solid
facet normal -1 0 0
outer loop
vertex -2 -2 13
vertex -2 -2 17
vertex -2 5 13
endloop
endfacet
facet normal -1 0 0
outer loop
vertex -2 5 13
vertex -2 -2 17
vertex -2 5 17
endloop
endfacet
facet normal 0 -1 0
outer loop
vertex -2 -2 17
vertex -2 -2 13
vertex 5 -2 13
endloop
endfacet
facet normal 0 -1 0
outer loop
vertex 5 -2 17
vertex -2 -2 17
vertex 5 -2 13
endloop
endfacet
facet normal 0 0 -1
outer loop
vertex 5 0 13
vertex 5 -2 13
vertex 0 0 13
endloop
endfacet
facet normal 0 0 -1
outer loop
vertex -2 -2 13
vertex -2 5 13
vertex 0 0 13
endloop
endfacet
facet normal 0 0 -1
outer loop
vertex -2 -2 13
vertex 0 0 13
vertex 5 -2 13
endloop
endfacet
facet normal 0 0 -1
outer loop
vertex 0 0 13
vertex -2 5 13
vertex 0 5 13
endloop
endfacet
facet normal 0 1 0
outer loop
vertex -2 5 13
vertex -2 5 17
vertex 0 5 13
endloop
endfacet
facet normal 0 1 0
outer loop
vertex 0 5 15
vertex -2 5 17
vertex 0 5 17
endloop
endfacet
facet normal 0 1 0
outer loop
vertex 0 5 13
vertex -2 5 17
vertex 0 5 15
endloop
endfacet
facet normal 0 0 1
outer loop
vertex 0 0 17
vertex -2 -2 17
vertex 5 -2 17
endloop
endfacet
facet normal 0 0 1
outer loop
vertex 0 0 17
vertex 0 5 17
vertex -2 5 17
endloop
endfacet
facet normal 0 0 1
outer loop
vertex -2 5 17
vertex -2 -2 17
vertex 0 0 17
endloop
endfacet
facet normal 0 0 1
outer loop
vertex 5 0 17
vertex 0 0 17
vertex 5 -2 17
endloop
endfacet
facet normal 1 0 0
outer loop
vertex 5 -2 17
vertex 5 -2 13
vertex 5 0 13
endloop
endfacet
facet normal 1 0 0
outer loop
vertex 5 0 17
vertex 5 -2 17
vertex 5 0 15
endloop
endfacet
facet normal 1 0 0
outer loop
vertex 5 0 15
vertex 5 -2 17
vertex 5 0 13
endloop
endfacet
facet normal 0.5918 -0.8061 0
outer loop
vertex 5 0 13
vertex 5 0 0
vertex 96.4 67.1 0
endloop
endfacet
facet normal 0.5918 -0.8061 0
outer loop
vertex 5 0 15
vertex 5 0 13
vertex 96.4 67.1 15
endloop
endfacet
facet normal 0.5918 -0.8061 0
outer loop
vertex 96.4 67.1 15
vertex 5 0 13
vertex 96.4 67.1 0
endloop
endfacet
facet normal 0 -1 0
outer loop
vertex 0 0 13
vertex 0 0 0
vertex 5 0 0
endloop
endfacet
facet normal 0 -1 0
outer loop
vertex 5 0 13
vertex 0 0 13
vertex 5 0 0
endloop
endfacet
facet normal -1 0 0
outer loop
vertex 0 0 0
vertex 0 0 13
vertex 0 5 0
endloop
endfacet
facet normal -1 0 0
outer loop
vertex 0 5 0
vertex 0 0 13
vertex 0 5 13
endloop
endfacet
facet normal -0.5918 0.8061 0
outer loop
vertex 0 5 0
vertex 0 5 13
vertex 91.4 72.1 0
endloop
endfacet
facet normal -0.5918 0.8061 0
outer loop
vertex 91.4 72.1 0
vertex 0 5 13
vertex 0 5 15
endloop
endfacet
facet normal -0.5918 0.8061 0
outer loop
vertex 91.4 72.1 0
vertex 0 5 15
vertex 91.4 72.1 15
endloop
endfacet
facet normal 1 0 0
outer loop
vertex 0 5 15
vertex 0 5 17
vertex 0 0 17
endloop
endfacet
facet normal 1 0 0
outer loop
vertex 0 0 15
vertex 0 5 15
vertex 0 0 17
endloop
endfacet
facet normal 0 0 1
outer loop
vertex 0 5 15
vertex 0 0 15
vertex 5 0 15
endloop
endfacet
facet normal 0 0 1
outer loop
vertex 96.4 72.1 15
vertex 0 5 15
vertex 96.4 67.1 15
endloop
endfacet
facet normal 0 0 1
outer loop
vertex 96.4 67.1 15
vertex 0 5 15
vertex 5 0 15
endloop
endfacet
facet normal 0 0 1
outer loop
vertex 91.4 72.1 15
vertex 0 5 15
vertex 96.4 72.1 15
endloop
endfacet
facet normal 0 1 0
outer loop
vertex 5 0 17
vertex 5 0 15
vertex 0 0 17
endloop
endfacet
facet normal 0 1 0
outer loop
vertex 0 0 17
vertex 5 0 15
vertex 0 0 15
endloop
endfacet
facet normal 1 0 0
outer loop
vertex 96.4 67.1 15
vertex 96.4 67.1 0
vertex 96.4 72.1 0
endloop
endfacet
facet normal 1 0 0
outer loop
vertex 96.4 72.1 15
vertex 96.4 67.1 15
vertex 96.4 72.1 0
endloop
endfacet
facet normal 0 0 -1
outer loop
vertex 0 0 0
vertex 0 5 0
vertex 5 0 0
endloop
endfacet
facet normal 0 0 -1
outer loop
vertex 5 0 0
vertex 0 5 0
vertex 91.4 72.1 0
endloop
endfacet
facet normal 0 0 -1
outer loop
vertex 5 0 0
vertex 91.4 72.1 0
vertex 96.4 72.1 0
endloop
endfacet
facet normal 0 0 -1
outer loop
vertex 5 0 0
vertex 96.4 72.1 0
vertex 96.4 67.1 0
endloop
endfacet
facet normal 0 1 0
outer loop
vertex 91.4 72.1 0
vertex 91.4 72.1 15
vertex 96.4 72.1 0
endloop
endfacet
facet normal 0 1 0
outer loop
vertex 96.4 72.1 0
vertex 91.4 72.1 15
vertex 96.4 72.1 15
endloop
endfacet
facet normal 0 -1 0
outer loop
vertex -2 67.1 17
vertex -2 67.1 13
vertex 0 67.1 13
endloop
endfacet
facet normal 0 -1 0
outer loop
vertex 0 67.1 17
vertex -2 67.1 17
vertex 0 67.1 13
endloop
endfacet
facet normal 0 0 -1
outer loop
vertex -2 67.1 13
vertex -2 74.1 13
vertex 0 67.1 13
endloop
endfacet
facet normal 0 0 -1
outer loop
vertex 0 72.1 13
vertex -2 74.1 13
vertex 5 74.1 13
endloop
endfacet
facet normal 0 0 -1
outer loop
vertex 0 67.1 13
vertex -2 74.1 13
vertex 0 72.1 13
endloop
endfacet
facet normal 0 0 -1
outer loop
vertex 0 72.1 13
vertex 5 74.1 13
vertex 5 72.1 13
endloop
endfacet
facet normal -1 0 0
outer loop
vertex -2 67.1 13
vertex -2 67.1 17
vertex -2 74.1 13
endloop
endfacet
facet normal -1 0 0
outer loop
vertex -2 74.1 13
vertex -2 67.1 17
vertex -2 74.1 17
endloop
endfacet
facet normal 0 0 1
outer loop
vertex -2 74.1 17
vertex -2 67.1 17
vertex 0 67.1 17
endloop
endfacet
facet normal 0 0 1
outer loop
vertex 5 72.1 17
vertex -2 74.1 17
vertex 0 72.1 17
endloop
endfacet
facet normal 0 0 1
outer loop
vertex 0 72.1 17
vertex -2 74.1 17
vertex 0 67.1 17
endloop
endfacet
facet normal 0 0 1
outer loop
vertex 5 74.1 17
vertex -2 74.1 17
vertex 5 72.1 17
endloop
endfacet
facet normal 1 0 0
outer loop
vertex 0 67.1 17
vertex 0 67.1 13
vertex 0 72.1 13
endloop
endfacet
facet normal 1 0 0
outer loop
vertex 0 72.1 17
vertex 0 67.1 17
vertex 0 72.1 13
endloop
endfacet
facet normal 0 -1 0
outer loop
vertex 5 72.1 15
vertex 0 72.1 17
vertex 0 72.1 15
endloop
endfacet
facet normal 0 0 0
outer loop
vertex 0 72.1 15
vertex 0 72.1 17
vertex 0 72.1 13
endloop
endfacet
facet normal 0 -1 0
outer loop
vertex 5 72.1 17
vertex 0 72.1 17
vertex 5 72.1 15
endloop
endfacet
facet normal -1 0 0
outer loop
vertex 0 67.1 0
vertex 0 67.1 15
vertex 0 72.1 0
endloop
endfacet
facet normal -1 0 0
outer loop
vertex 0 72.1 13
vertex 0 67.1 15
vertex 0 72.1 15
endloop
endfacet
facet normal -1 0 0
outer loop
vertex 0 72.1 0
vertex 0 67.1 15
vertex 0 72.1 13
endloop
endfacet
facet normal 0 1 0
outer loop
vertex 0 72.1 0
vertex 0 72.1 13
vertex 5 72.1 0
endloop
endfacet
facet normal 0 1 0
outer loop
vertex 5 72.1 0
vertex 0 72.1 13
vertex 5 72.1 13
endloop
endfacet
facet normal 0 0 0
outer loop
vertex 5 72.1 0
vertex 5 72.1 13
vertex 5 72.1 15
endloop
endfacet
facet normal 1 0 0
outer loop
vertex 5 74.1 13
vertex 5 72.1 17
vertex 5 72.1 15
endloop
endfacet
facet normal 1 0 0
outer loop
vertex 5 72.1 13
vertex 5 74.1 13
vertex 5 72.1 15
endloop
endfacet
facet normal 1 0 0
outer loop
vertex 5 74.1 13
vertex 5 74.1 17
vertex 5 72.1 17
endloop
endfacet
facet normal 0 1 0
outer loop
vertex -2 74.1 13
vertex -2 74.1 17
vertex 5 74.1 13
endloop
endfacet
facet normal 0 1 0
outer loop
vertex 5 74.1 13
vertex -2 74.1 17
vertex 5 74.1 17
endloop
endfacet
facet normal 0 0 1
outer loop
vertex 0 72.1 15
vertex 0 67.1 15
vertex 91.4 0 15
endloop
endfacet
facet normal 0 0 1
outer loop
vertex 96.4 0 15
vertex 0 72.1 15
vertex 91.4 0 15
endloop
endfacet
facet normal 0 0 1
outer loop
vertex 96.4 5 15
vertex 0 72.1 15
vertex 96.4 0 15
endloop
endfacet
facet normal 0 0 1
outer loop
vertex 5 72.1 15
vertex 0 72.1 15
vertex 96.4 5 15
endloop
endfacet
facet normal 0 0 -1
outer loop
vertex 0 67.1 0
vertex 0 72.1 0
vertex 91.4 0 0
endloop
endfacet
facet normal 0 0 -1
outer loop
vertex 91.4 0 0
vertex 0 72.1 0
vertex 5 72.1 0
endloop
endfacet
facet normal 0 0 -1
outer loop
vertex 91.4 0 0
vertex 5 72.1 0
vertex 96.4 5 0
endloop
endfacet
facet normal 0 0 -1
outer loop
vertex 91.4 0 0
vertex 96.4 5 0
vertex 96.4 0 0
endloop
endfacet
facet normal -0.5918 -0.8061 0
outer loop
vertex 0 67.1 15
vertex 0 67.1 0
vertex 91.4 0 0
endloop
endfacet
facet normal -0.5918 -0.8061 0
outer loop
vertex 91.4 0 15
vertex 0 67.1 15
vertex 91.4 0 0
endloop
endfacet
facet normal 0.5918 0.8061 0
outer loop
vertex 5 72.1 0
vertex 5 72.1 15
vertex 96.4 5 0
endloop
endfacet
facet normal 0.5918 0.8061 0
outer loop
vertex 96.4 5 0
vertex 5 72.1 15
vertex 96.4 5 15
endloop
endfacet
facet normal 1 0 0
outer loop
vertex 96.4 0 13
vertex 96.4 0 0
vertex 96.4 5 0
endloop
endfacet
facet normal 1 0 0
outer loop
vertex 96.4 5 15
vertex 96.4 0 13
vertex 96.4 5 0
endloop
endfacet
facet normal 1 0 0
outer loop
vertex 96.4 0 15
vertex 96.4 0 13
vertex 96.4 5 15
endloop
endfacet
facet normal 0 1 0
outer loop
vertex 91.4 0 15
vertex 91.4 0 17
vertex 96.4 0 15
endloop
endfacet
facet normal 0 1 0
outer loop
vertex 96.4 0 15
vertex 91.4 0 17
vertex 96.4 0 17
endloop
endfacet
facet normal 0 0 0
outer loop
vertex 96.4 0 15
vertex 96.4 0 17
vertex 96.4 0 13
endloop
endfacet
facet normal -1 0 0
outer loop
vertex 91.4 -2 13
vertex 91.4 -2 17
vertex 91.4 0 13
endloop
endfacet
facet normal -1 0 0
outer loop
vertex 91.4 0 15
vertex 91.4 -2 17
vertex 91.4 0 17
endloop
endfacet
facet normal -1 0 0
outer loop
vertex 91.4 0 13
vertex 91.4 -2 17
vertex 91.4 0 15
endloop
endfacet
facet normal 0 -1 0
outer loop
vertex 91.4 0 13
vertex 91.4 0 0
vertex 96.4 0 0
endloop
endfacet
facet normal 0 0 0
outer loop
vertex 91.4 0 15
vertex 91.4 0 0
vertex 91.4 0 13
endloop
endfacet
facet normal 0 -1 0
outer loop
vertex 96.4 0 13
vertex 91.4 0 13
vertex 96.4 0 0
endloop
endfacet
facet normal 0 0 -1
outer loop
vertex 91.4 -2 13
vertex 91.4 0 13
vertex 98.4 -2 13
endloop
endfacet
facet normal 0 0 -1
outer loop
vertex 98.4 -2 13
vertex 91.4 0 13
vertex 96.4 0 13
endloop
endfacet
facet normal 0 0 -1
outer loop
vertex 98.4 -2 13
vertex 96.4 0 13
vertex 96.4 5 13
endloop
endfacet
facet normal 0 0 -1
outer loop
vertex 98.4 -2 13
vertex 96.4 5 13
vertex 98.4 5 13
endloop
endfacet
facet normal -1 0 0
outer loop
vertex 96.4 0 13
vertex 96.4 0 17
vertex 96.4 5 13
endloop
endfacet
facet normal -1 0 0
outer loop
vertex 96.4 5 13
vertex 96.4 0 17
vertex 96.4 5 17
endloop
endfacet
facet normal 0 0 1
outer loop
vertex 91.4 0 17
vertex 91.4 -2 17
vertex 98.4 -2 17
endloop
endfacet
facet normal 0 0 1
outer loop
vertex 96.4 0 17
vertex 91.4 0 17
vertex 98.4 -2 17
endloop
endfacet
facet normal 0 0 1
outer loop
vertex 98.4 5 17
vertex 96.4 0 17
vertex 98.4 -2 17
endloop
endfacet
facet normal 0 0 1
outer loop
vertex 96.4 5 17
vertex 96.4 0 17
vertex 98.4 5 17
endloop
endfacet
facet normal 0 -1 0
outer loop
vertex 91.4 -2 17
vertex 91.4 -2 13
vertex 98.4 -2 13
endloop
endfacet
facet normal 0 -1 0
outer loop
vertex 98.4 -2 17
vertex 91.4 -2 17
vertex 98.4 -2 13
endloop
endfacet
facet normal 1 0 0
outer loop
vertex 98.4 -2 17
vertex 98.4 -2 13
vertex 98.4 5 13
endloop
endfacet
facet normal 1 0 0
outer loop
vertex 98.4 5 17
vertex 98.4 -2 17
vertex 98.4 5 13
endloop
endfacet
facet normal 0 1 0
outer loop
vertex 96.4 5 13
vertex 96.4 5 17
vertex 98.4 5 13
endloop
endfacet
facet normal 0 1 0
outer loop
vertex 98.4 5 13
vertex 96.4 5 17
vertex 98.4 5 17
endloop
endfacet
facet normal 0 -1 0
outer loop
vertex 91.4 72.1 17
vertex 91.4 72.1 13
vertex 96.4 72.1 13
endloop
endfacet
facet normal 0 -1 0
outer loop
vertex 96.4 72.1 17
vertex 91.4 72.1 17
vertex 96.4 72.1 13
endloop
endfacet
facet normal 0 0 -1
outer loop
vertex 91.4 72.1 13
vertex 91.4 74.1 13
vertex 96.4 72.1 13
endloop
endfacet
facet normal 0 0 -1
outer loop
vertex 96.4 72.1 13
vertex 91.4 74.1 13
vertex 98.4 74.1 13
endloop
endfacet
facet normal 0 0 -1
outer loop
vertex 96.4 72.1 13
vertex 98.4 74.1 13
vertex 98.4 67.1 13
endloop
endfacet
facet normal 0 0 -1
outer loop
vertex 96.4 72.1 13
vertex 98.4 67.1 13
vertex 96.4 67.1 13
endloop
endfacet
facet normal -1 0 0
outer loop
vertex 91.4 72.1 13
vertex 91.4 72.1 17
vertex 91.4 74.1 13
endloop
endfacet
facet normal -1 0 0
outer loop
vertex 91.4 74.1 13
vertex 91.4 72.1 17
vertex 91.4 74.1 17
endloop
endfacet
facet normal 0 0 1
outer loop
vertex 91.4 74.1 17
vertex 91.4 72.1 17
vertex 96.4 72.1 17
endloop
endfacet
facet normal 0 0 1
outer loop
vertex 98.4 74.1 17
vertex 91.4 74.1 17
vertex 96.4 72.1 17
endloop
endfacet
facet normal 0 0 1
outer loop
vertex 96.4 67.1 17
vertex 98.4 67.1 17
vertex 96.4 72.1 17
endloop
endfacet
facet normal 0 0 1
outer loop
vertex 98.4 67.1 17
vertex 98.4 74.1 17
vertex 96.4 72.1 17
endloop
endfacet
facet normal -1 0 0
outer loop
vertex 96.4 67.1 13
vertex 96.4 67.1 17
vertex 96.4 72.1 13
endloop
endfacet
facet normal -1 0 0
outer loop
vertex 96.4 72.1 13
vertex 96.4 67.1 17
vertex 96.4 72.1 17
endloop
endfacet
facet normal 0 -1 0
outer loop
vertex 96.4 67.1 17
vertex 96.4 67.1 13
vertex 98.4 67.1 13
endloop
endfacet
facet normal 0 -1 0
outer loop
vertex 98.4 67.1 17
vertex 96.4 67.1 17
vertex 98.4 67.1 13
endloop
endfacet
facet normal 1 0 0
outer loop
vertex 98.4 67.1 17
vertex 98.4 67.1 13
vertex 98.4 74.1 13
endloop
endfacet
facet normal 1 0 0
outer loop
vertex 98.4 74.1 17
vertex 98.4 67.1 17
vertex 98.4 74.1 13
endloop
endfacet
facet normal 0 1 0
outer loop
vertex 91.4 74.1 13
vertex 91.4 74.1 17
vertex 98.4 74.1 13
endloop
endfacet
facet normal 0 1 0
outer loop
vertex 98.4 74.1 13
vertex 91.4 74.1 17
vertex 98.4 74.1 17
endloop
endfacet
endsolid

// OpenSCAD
// Bloc Glockenspiel Moteur

// Hauteur : 15 mm
// Largeur : 72.1 mm
// Longueur : 96.4 mm

Hauteur = 15;
Largeur = 72.1;
Longueur = 96.4;
EpaisseurCale = 2;
EpaisseurAxes = 5;

support ();

translate ([ -EpaisseurCale, -EpaisseurCale, Hauteur - EpaisseurCale] ) 
	cale ();

translate ([ Longueur + EpaisseurCale, -EpaisseurCale, Hauteur - EpaisseurCale] ) 
	rotate ([ 0, 0, 90])
		cale ();

translate ([ Longueur + EpaisseurCale, Largeur + EpaisseurCale, Hauteur - EpaisseurCale] ) 
	rotate ([ 0, 0, 180])
		cale ();

translate ([ -EpaisseurCale, Largeur + EpaisseurCale, Hauteur - EpaisseurCale] ) 
	rotate ([ 0, 0, 270])
		cale ();

module cale ()
{
	C0 = [ EpaisseurAxes + EpaisseurCale, 0,             0];
	C1 = [ 0,             0,             0];
	C2 = [ 0,             EpaisseurAxes + EpaisseurCale, 0];
	C3 = [ EpaisseurAxes + EpaisseurCale, EpaisseurCale, 0];
	C4 = [ EpaisseurCale, EpaisseurCale, 0];
	C5 = [ EpaisseurCale, EpaisseurAxes + EpaisseurCale, 0];
	C6 = [ EpaisseurAxes + EpaisseurCale, EpaisseurCale, -EpaisseurCale];
	C7 = [ EpaisseurCale, EpaisseurCale, -EpaisseurCale];
	C8 = [ EpaisseurCale, EpaisseurAxes + EpaisseurCale, -EpaisseurCale];

	cube ( [ EpaisseurCale, EpaisseurAxes + EpaisseurCale, EpaisseurCale * 2] );
	cube ( [ EpaisseurAxes + EpaisseurCale, EpaisseurCale, EpaisseurCale * 2] );

	polyhedron 
		( points = [ 
				   C0, C1, C2, C3, C4, C5, C6, C7, C8,
				  ],
		  triangles = [ 
					[ 0, 3, 6], [ 2, 8, 5],
					[ 3, 4, 7], [ 6, 3, 7],
					[ 5, 7, 4], [ 5, 8, 7],
					[ 0, 7, 1], [ 0, 6, 7],
					[ 1, 8, 2], [ 1, 7, 8],
					[ 0, 1, 4], [ 0, 3, 4],
					[ 4, 5, 2], [ 4, 1, 2],

				  ]
		);
}

module support ()
{
P0  = [ 0, 0, 0];
P1  = [ 0, EpaisseurAxes, 0];
P2  = [ Longueur / 2 - EpaisseurAxes, Largeur / 2, 0];
P3  = [ 0, Largeur - EpaisseurAxes, 0];
P4  = [ 0, Largeur, 0];
P5  = [ EpaisseurAxes, Largeur, 0];
P6  = [ Longueur / 2, Largeur / 2 + EpaisseurAxes, 0];
P7  = [ Longueur - EpaisseurAxes, Largeur, 0];
P8  = [ Longueur, Largeur, 0];
P9  = [ Longueur, Largeur - EpaisseurAxes, 0];
P10 = [ Longueur / 2 + EpaisseurAxes, Largeur / 2, 0];
P11 = [ Longueur, EpaisseurAxes, 0];
P12 = [ Longueur, 0, 0];
P13 = [ Longueur - EpaisseurAxes, 0, 0];
P14 = [ Longueur / 2, Largeur / 2 - EpaisseurAxes, 0];
P15 = [ EpaisseurAxes, 0, 0];

P16 = [ 0, 0, Hauteur];
P17 = [ 0, EpaisseurAxes, Hauteur];
P18 = [ Longueur / 2 - EpaisseurAxes, Largeur / 2, Hauteur];
P19 = [ 0, Largeur - EpaisseurAxes, Hauteur];
P20 = [ 0, Largeur, Hauteur];
P21 = [ EpaisseurAxes, Largeur, Hauteur];
P22 = [ Longueur / 2, Largeur / 2 + EpaisseurAxes, Hauteur];
P23 = [ Longueur - EpaisseurAxes, Largeur, Hauteur];
P24 = [ Longueur, Largeur, Hauteur];
P25 = [ Longueur, Largeur - EpaisseurAxes, Hauteur];
P26 = [ Longueur / 2 + EpaisseurAxes, Largeur / 2, Hauteur];
P27 = [ Longueur, EpaisseurAxes, Hauteur];
P28 = [ Longueur, 0, Hauteur];
P29 = [ Longueur - EpaisseurAxes, 0, Hauteur];
P30 = [ Longueur / 2, Largeur / 2 - EpaisseurAxes, Hauteur];
P31 = [ EpaisseurAxes, 0, Hauteur];


	polyhedron 
		( points = [ 
				   P0,  P1,  P2,  P3,  P4,  P5,  P6,  P7, 
				   P8,  P9,  P10, P11, P12, P13, P14, P15, 
				   P16, P17, P18, P19, P20, P21, P22, P23, 
                    P24, P25, P26, P27, P28, P29, P30, P31 
				  ],
		  triangles = [ 
					  [  0, 15,  1], [  1, 15,  7],
					  [  4,  3,  5], [  3, 13,  5],
					  [  8,  7,  9], [  7, 15,  9],
					  [ 12, 11, 13], [ 13, 11,  5],

					  [  0,  1, 16], [  1, 17, 16], 
					  [  0, 16, 15], [ 15, 16, 31], 

					  [  4,  5, 20], [  5, 21, 20], 
					  [  4, 20, 19], [  4, 19,  3], 

					  [  8,  9, 24], [  9, 25, 24], 
					  [  8, 24, 23], [  8, 23,  7], 

					  [ 12, 13, 28], [ 13, 29, 28], 
					  [ 12, 28, 27], [ 12, 27, 11], 

					  [  1,  7, 17], [  7, 23, 17],
					  [ 15, 31,  9], [  9, 31, 25],

					  [  5, 11, 21], [ 11, 27, 21],
					  [  3, 19, 13], [ 13, 19, 29],

					  [ 16, 17, 31], [ 17, 23, 31],
					  [ 20, 21, 19], [ 19, 21, 27],
					  [ 24, 25, 23], [ 23, 25, 31],
					  [ 28, 29, 27], [ 29, 19, 27]
				  ]
		);
}
